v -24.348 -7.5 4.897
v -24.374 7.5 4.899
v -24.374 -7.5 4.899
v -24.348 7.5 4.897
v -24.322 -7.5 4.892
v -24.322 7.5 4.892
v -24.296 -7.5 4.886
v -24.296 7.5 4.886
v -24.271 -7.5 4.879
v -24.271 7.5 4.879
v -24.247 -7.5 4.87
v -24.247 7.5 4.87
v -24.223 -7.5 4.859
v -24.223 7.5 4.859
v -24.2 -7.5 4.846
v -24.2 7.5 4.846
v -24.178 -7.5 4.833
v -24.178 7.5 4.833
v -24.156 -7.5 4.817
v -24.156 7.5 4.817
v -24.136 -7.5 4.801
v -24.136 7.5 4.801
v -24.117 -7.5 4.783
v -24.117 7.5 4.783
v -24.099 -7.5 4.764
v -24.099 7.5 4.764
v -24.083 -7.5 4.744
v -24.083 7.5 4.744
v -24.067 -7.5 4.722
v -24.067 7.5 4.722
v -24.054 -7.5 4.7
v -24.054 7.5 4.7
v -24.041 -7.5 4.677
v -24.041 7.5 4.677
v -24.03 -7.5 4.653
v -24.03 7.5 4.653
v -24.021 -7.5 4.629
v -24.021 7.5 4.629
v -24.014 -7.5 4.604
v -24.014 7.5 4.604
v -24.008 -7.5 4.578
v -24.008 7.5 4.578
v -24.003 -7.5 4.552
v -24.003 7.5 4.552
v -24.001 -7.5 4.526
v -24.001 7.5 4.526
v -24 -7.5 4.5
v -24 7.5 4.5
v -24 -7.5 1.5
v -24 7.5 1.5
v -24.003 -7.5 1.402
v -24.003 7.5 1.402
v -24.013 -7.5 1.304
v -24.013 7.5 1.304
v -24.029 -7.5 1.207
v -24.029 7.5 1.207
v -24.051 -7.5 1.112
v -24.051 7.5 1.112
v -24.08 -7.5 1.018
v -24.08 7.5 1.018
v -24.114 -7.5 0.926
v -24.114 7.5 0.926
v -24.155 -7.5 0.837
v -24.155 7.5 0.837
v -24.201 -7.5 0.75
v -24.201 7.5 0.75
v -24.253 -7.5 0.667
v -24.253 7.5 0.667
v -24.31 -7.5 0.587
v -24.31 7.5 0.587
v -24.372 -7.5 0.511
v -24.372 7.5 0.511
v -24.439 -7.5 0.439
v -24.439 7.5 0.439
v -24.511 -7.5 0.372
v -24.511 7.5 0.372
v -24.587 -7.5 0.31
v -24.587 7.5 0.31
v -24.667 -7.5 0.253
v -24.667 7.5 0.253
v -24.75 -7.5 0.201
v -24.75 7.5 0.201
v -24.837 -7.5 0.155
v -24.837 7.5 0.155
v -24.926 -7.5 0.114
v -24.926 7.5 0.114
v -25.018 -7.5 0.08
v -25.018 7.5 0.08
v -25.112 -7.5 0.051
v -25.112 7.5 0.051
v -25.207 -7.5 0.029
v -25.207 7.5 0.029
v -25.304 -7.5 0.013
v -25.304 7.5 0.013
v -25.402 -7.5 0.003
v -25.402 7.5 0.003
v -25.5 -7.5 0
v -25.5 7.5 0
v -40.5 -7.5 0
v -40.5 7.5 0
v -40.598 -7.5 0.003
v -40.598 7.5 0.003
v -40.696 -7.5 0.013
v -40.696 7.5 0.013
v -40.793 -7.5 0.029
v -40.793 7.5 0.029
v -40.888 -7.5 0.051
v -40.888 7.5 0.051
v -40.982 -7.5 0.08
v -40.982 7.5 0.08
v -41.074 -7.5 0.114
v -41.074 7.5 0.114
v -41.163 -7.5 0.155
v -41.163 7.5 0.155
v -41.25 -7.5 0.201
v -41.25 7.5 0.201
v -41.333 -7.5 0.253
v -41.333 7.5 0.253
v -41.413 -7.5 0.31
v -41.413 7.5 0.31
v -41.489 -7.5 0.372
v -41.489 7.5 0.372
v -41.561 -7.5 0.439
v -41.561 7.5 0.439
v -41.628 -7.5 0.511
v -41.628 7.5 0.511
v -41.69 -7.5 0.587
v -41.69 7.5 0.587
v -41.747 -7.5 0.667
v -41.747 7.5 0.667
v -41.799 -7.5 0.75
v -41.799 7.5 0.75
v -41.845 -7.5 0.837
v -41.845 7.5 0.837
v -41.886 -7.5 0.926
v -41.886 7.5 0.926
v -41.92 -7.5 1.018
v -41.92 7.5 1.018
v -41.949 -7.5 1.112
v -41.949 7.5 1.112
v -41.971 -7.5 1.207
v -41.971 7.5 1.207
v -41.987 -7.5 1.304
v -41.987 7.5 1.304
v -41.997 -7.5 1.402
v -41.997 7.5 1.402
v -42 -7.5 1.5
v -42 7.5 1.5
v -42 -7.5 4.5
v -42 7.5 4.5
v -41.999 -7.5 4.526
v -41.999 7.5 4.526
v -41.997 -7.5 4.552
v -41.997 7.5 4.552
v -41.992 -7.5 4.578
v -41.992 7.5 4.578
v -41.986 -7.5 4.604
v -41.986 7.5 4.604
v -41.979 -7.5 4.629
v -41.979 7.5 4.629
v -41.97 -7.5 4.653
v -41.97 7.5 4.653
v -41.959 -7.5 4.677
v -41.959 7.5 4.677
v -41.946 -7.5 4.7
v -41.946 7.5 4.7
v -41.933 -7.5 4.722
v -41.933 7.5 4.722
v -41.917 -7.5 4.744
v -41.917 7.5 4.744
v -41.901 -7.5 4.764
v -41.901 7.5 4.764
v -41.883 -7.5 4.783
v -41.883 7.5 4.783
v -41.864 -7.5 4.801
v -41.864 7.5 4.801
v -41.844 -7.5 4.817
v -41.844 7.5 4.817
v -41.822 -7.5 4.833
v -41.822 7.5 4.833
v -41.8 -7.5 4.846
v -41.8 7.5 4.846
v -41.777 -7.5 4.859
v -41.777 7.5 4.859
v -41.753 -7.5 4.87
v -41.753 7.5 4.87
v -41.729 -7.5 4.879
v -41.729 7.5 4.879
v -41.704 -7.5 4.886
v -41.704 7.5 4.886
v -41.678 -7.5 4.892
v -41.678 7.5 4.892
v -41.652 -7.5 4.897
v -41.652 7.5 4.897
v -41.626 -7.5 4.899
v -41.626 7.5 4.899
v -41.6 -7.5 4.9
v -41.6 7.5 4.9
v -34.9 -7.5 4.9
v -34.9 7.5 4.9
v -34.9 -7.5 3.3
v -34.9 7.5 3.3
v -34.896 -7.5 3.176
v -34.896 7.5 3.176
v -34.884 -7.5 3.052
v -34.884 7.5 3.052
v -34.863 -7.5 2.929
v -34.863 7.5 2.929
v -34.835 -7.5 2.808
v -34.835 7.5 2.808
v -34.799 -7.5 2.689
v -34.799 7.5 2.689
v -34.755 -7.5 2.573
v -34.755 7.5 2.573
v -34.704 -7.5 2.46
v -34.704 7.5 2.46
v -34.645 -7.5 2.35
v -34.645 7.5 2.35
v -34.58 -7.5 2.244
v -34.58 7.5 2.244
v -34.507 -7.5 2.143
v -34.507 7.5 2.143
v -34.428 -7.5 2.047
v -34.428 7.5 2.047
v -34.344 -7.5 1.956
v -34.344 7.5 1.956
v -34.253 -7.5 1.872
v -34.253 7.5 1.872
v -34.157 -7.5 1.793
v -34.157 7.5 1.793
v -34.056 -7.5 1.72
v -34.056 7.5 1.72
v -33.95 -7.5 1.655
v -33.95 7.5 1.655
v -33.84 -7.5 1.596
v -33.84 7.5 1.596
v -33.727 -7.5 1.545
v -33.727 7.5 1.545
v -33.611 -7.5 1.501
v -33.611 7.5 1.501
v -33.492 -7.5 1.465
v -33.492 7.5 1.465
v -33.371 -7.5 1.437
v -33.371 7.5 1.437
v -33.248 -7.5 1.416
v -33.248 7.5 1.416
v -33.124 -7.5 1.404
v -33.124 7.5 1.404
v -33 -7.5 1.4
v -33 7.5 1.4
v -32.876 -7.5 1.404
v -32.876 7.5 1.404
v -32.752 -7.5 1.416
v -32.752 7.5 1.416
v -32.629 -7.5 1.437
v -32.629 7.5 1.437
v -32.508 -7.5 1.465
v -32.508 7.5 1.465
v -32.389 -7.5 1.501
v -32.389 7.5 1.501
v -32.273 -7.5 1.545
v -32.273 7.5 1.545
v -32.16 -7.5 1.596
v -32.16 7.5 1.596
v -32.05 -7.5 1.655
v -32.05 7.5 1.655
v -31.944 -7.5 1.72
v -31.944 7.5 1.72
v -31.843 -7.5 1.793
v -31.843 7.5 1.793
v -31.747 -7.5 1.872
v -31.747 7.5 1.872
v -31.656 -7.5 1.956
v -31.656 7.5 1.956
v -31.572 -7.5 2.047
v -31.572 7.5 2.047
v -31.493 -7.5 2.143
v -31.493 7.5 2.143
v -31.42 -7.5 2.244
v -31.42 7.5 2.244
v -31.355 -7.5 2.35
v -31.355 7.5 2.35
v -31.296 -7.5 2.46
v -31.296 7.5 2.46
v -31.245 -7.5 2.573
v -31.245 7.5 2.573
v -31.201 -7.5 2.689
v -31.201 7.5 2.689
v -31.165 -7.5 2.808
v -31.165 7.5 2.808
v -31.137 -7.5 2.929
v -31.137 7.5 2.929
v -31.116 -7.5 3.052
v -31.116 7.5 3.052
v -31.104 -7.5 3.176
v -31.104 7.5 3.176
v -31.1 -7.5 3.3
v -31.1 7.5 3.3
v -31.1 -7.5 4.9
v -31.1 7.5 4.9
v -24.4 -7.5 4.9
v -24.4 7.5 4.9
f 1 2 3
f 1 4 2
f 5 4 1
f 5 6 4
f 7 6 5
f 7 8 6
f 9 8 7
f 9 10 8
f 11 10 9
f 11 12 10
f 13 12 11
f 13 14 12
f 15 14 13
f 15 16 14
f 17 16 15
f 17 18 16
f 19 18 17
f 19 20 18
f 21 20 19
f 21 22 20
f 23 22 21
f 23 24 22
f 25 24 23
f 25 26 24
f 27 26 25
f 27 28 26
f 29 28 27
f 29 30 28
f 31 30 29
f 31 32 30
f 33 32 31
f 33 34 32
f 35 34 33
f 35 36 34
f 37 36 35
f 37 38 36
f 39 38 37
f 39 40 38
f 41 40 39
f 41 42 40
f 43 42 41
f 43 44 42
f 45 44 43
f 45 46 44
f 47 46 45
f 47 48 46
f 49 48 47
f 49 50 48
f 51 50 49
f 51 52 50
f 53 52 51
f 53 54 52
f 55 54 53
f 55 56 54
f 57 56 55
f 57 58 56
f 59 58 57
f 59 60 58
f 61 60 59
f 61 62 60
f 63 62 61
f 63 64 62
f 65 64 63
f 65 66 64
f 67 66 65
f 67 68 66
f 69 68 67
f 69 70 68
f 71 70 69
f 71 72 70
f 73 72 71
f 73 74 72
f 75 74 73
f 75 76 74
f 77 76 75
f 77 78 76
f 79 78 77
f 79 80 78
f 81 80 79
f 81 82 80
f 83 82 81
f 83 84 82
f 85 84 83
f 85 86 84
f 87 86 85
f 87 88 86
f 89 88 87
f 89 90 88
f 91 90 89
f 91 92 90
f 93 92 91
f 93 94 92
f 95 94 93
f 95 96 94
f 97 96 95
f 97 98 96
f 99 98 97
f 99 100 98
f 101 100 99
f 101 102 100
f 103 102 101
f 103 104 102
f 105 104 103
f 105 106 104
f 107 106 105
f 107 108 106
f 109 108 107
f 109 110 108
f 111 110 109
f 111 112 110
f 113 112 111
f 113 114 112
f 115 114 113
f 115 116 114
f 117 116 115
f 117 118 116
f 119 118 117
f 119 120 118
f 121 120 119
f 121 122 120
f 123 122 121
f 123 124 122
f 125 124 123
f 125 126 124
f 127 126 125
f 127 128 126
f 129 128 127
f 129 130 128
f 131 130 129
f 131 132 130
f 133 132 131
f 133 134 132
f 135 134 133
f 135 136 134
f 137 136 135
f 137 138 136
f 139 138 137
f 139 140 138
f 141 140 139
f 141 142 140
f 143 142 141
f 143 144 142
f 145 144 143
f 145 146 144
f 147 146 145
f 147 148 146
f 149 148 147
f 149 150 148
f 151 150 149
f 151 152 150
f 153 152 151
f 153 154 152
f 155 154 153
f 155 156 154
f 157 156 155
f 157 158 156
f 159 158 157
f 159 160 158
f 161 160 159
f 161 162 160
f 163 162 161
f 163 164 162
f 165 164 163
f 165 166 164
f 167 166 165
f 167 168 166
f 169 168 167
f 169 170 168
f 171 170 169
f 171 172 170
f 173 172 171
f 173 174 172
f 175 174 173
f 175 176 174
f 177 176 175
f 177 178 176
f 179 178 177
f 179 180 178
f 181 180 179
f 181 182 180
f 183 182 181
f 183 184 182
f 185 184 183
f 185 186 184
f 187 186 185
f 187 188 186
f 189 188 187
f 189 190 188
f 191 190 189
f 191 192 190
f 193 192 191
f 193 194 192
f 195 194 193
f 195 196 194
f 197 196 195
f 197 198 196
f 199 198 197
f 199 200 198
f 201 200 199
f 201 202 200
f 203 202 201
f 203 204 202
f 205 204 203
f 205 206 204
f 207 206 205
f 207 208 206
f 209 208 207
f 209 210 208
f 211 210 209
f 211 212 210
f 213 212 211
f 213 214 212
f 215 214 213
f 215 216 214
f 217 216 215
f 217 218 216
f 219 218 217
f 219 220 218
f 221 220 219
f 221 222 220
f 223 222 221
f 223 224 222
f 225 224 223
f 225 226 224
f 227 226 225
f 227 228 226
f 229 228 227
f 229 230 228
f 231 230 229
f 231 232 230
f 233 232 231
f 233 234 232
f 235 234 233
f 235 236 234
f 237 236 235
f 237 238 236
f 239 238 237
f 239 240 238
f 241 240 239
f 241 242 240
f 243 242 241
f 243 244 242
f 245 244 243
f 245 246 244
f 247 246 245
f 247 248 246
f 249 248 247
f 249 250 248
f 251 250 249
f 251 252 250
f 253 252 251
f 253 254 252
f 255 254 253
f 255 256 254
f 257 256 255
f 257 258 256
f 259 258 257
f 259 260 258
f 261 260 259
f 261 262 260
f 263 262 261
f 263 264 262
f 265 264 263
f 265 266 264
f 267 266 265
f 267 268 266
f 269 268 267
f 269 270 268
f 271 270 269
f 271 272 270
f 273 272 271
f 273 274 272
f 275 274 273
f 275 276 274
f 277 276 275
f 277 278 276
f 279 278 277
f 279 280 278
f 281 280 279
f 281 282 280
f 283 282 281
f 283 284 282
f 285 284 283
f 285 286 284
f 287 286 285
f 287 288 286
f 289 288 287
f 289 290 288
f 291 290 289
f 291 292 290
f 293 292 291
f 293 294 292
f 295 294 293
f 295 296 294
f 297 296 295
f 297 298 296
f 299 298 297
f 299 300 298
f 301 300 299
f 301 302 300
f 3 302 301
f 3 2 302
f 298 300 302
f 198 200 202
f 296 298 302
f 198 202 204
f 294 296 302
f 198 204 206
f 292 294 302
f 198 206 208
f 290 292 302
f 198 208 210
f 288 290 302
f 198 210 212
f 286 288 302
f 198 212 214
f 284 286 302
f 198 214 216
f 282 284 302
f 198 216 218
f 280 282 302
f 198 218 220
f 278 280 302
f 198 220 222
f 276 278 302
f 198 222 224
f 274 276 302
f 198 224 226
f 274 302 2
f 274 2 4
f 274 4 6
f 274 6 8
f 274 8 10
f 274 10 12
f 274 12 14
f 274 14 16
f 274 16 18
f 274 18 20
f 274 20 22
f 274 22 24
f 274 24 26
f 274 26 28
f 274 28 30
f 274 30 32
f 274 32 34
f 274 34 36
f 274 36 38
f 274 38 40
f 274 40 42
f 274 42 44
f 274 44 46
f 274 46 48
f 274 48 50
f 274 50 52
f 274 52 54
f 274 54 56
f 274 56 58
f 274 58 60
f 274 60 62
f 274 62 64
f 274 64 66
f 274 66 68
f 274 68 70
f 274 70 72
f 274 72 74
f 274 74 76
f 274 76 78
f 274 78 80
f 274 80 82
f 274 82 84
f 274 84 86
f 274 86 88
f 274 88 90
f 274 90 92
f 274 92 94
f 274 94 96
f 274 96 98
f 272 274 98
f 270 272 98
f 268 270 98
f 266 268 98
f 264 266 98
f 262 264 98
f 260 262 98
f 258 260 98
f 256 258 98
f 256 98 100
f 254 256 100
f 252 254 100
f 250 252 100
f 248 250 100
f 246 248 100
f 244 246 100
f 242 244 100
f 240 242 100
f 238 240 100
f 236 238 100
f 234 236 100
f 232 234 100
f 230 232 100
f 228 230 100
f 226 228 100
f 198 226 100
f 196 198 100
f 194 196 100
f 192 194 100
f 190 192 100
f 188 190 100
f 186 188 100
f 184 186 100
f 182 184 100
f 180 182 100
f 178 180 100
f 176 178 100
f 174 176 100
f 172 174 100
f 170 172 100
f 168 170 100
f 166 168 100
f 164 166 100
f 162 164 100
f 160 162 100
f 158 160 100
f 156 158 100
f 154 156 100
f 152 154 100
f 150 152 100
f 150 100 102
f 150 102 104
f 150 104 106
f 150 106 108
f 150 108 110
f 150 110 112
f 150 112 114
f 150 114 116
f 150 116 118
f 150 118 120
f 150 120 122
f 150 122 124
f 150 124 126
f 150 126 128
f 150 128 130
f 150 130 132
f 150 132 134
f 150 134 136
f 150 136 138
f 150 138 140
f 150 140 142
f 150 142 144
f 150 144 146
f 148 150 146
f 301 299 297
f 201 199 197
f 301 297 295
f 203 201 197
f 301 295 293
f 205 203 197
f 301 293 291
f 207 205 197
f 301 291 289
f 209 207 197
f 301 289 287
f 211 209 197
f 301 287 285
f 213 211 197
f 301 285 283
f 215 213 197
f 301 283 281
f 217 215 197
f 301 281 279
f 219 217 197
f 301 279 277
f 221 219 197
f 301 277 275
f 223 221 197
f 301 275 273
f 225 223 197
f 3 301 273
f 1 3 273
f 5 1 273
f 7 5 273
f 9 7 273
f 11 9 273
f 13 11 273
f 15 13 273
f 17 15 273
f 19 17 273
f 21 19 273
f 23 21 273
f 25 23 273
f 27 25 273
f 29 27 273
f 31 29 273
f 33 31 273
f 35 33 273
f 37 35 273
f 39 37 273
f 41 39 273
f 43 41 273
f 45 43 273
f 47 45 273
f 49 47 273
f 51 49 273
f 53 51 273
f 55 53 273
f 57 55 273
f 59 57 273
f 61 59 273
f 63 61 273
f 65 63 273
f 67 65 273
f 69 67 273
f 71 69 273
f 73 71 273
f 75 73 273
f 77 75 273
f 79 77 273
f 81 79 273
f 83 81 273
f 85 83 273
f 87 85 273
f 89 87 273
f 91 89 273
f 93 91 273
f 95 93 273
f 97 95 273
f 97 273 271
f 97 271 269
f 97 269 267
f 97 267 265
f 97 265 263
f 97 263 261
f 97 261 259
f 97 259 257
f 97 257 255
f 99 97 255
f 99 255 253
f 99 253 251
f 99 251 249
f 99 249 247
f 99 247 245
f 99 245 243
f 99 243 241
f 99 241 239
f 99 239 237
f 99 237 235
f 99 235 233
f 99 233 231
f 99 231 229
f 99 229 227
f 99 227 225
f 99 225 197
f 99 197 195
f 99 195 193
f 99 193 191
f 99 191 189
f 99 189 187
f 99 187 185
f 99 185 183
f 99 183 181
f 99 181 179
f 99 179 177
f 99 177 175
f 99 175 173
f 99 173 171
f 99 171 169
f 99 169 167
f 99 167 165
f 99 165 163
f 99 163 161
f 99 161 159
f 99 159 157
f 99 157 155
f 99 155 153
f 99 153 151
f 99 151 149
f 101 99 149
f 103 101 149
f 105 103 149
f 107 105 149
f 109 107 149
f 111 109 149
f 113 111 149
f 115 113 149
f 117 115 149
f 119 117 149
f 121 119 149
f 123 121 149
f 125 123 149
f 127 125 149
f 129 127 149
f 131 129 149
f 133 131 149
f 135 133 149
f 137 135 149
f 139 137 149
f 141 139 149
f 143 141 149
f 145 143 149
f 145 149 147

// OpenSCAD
// simplisafe-wire-guide.scad
//
// Taped-on clips that hold a 3.5 mm round wire up the side of a shelf whose
// edge is 21 mm wide (Ziad, 2026-10-11).
//
// THE WIRE RUNS BEHIND THE CLIP. Each clip is a plain plate with a groove
// down its back; lay the wire on the shelf, set a clip over it, and the
// tape on the two rails either side of the groove holds both down. The
// shelf itself is the groove's fourth wall. (Ziad, 2026-10-11: the first
// draft was a snap channel on the front, wire showing; he wanted it behind.)
// doorbell-wire-channel.scad is the same idea as a continuous raceway.
//
// THE GROOVE IS AS DEEP AS THE WIRE, so with thin tape the wire is held
// snug against the shelf. Foam tape stands the rails off the shelf by its
// own thickness and leaves the wire that much slack; take groove_depth down
// by the tape's thickness if that matters.
//
// The plate is clip_w wide, centred in shelf_w with a margin either side so
// it does not hang over the edge if placed a little off.
//
// Prints face down: the groove opens upward and nothing overhangs, and the
// rails' top surface is the smooth one, for the tape.
//
// Drawn as mounted: back against the shelf at z = 0, wire along Y, front
// facing +Z.

/* [Output] */
// set  — count clips face down, the way they print
// clip — one clip, as mounted
show = "set";  // [set, clip]

// Clips on the plate.
count = 1;

/* [Shelf] */
// Width of the shelf face the clip sits on, mm.
shelf_w = 21;

/* [Wire] */
// Wire diameter, mm.
wire_d = 3.5;
// Groove width over the wire, mm.
groove_w = 3.8;
// Groove depth from the back face, mm. Wire depth for a snug hold on thin tape.
groove_depth = 3.5;

/* [Clip] */
// Width across the shelf face, mm.
clip_w = 18;
// Length along the wire, mm.
clip_len = 15;
// Plate over the groove, mm (four loops' worth of layers is plenty).
cover_t = 1.4;
// Round on the front edges, mm.
front_r = 1.5;
// Round on the back edges, mm.
back_r = 0.4;

/* [Plate] */
// Gap between clips on the plate, mm.
plate_gap = 4;
// Clips per row on the plate.
plate_cols = 4;

/* [Colors] */
clip_color = "SlateGray";

/* [Hidden] */
$fn = 96;
eps = 0.01;

clip_t = groove_depth + cover_t;

assert(clip_w <= shelf_w, "clip_w is wider than the shelf");
assert(groove_w > wire_d, "groove_w must clear the wire");
assert(front_r + back_r <= clip_t, "edge rounds overlap");

// Section across the wire: x across the shelf, y out from the shelf.
module clip_profile() {
  difference() {
    hull() {
      for (s = [-1, 1]) {
        translate([s * (clip_w / 2 - back_r), back_r]) circle(r = back_r);
        translate([s * (clip_w / 2 - front_r), clip_t - front_r]) circle(r = front_r);
      }
    }
    // Groove, round at its roof so the wire seats in it.
    hull() {
      translate([-groove_w / 2, -eps]) square([groove_w, eps]);
      translate([0, groove_depth - groove_w / 2]) circle(d = groove_w);
    }
  }
}

// As mounted: back on z = 0, wire along Y.
module simplisafe_wire_guide() {
  color(clip_color)
    rotate([90, 0, 0])
      translate([0, 0, -clip_len / 2])
        linear_extrude(height = clip_len, convexity = 4) clip_profile();
}

// Face down on the bed, groove up.
module clip_face_down() {
  translate([0, 0, clip_t]) rotate([180, 0, 0]) simplisafe_wire_guide();
}

module print_set() {
  pitch_x = clip_w + plate_gap;
  pitch_y = clip_len + plate_gap;
  rows = ceil(count / plate_cols);
  for (i = [0 : count - 1])
    translate([
      (i % plate_cols - (plate_cols - 1) / 2) * pitch_x,
      (floor(i / plate_cols) - (rows - 1) / 2) * pitch_y,
      0,
    ])
      clip_face_down();
}

if (show == "clip") simplisafe_wire_guide();
else print_set();
